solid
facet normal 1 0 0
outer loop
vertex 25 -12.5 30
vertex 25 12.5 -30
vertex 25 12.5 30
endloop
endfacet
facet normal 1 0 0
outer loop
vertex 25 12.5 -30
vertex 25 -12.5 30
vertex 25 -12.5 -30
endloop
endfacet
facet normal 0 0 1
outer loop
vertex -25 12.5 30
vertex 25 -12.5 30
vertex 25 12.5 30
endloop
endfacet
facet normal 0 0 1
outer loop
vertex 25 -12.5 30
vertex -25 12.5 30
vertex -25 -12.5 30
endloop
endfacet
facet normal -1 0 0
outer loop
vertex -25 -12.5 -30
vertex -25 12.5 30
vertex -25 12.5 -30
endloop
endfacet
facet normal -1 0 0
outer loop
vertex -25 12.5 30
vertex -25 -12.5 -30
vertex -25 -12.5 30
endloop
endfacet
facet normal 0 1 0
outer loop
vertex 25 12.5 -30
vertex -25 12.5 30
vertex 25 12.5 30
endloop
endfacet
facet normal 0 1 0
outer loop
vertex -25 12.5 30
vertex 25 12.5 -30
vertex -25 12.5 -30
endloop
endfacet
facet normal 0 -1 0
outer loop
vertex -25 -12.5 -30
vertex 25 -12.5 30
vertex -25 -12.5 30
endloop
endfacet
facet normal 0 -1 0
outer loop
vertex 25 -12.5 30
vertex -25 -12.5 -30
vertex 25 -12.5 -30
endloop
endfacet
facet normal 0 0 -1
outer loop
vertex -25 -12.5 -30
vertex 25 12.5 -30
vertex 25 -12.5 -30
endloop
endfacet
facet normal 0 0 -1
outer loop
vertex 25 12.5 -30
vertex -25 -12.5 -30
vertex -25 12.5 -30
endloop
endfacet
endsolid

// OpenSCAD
// Define the dimensions of the rectangular block
block_length = 50;  // Length of the block
block_width = 25;   // Width of the block
block_height = 10;  // Height of the block

// Function to create a rectangular block
module rectangular_block() {
    cube([block_length, block_width, block_height], center = true);
}

// Stack the rectangular blocks based on the positional relationship
translate([0, 0, block_height * 2.5]) rectangular_block(); // Layer 1
translate([0, 0, block_height * 1.5]) rectangular_block(); // Layer 2
translate([0, 0, block_height * 0.5]) rectangular_block(); // Layer 3
translate([0, 0, -block_height * 0.5]) rectangular_block(); // Layer 4
translate([0, 0, -block_height * 1.5]) rectangular_block(); // Layer 5
translate([0, 0, -block_height * 2.5]) rectangular_block(); // Layer 6
